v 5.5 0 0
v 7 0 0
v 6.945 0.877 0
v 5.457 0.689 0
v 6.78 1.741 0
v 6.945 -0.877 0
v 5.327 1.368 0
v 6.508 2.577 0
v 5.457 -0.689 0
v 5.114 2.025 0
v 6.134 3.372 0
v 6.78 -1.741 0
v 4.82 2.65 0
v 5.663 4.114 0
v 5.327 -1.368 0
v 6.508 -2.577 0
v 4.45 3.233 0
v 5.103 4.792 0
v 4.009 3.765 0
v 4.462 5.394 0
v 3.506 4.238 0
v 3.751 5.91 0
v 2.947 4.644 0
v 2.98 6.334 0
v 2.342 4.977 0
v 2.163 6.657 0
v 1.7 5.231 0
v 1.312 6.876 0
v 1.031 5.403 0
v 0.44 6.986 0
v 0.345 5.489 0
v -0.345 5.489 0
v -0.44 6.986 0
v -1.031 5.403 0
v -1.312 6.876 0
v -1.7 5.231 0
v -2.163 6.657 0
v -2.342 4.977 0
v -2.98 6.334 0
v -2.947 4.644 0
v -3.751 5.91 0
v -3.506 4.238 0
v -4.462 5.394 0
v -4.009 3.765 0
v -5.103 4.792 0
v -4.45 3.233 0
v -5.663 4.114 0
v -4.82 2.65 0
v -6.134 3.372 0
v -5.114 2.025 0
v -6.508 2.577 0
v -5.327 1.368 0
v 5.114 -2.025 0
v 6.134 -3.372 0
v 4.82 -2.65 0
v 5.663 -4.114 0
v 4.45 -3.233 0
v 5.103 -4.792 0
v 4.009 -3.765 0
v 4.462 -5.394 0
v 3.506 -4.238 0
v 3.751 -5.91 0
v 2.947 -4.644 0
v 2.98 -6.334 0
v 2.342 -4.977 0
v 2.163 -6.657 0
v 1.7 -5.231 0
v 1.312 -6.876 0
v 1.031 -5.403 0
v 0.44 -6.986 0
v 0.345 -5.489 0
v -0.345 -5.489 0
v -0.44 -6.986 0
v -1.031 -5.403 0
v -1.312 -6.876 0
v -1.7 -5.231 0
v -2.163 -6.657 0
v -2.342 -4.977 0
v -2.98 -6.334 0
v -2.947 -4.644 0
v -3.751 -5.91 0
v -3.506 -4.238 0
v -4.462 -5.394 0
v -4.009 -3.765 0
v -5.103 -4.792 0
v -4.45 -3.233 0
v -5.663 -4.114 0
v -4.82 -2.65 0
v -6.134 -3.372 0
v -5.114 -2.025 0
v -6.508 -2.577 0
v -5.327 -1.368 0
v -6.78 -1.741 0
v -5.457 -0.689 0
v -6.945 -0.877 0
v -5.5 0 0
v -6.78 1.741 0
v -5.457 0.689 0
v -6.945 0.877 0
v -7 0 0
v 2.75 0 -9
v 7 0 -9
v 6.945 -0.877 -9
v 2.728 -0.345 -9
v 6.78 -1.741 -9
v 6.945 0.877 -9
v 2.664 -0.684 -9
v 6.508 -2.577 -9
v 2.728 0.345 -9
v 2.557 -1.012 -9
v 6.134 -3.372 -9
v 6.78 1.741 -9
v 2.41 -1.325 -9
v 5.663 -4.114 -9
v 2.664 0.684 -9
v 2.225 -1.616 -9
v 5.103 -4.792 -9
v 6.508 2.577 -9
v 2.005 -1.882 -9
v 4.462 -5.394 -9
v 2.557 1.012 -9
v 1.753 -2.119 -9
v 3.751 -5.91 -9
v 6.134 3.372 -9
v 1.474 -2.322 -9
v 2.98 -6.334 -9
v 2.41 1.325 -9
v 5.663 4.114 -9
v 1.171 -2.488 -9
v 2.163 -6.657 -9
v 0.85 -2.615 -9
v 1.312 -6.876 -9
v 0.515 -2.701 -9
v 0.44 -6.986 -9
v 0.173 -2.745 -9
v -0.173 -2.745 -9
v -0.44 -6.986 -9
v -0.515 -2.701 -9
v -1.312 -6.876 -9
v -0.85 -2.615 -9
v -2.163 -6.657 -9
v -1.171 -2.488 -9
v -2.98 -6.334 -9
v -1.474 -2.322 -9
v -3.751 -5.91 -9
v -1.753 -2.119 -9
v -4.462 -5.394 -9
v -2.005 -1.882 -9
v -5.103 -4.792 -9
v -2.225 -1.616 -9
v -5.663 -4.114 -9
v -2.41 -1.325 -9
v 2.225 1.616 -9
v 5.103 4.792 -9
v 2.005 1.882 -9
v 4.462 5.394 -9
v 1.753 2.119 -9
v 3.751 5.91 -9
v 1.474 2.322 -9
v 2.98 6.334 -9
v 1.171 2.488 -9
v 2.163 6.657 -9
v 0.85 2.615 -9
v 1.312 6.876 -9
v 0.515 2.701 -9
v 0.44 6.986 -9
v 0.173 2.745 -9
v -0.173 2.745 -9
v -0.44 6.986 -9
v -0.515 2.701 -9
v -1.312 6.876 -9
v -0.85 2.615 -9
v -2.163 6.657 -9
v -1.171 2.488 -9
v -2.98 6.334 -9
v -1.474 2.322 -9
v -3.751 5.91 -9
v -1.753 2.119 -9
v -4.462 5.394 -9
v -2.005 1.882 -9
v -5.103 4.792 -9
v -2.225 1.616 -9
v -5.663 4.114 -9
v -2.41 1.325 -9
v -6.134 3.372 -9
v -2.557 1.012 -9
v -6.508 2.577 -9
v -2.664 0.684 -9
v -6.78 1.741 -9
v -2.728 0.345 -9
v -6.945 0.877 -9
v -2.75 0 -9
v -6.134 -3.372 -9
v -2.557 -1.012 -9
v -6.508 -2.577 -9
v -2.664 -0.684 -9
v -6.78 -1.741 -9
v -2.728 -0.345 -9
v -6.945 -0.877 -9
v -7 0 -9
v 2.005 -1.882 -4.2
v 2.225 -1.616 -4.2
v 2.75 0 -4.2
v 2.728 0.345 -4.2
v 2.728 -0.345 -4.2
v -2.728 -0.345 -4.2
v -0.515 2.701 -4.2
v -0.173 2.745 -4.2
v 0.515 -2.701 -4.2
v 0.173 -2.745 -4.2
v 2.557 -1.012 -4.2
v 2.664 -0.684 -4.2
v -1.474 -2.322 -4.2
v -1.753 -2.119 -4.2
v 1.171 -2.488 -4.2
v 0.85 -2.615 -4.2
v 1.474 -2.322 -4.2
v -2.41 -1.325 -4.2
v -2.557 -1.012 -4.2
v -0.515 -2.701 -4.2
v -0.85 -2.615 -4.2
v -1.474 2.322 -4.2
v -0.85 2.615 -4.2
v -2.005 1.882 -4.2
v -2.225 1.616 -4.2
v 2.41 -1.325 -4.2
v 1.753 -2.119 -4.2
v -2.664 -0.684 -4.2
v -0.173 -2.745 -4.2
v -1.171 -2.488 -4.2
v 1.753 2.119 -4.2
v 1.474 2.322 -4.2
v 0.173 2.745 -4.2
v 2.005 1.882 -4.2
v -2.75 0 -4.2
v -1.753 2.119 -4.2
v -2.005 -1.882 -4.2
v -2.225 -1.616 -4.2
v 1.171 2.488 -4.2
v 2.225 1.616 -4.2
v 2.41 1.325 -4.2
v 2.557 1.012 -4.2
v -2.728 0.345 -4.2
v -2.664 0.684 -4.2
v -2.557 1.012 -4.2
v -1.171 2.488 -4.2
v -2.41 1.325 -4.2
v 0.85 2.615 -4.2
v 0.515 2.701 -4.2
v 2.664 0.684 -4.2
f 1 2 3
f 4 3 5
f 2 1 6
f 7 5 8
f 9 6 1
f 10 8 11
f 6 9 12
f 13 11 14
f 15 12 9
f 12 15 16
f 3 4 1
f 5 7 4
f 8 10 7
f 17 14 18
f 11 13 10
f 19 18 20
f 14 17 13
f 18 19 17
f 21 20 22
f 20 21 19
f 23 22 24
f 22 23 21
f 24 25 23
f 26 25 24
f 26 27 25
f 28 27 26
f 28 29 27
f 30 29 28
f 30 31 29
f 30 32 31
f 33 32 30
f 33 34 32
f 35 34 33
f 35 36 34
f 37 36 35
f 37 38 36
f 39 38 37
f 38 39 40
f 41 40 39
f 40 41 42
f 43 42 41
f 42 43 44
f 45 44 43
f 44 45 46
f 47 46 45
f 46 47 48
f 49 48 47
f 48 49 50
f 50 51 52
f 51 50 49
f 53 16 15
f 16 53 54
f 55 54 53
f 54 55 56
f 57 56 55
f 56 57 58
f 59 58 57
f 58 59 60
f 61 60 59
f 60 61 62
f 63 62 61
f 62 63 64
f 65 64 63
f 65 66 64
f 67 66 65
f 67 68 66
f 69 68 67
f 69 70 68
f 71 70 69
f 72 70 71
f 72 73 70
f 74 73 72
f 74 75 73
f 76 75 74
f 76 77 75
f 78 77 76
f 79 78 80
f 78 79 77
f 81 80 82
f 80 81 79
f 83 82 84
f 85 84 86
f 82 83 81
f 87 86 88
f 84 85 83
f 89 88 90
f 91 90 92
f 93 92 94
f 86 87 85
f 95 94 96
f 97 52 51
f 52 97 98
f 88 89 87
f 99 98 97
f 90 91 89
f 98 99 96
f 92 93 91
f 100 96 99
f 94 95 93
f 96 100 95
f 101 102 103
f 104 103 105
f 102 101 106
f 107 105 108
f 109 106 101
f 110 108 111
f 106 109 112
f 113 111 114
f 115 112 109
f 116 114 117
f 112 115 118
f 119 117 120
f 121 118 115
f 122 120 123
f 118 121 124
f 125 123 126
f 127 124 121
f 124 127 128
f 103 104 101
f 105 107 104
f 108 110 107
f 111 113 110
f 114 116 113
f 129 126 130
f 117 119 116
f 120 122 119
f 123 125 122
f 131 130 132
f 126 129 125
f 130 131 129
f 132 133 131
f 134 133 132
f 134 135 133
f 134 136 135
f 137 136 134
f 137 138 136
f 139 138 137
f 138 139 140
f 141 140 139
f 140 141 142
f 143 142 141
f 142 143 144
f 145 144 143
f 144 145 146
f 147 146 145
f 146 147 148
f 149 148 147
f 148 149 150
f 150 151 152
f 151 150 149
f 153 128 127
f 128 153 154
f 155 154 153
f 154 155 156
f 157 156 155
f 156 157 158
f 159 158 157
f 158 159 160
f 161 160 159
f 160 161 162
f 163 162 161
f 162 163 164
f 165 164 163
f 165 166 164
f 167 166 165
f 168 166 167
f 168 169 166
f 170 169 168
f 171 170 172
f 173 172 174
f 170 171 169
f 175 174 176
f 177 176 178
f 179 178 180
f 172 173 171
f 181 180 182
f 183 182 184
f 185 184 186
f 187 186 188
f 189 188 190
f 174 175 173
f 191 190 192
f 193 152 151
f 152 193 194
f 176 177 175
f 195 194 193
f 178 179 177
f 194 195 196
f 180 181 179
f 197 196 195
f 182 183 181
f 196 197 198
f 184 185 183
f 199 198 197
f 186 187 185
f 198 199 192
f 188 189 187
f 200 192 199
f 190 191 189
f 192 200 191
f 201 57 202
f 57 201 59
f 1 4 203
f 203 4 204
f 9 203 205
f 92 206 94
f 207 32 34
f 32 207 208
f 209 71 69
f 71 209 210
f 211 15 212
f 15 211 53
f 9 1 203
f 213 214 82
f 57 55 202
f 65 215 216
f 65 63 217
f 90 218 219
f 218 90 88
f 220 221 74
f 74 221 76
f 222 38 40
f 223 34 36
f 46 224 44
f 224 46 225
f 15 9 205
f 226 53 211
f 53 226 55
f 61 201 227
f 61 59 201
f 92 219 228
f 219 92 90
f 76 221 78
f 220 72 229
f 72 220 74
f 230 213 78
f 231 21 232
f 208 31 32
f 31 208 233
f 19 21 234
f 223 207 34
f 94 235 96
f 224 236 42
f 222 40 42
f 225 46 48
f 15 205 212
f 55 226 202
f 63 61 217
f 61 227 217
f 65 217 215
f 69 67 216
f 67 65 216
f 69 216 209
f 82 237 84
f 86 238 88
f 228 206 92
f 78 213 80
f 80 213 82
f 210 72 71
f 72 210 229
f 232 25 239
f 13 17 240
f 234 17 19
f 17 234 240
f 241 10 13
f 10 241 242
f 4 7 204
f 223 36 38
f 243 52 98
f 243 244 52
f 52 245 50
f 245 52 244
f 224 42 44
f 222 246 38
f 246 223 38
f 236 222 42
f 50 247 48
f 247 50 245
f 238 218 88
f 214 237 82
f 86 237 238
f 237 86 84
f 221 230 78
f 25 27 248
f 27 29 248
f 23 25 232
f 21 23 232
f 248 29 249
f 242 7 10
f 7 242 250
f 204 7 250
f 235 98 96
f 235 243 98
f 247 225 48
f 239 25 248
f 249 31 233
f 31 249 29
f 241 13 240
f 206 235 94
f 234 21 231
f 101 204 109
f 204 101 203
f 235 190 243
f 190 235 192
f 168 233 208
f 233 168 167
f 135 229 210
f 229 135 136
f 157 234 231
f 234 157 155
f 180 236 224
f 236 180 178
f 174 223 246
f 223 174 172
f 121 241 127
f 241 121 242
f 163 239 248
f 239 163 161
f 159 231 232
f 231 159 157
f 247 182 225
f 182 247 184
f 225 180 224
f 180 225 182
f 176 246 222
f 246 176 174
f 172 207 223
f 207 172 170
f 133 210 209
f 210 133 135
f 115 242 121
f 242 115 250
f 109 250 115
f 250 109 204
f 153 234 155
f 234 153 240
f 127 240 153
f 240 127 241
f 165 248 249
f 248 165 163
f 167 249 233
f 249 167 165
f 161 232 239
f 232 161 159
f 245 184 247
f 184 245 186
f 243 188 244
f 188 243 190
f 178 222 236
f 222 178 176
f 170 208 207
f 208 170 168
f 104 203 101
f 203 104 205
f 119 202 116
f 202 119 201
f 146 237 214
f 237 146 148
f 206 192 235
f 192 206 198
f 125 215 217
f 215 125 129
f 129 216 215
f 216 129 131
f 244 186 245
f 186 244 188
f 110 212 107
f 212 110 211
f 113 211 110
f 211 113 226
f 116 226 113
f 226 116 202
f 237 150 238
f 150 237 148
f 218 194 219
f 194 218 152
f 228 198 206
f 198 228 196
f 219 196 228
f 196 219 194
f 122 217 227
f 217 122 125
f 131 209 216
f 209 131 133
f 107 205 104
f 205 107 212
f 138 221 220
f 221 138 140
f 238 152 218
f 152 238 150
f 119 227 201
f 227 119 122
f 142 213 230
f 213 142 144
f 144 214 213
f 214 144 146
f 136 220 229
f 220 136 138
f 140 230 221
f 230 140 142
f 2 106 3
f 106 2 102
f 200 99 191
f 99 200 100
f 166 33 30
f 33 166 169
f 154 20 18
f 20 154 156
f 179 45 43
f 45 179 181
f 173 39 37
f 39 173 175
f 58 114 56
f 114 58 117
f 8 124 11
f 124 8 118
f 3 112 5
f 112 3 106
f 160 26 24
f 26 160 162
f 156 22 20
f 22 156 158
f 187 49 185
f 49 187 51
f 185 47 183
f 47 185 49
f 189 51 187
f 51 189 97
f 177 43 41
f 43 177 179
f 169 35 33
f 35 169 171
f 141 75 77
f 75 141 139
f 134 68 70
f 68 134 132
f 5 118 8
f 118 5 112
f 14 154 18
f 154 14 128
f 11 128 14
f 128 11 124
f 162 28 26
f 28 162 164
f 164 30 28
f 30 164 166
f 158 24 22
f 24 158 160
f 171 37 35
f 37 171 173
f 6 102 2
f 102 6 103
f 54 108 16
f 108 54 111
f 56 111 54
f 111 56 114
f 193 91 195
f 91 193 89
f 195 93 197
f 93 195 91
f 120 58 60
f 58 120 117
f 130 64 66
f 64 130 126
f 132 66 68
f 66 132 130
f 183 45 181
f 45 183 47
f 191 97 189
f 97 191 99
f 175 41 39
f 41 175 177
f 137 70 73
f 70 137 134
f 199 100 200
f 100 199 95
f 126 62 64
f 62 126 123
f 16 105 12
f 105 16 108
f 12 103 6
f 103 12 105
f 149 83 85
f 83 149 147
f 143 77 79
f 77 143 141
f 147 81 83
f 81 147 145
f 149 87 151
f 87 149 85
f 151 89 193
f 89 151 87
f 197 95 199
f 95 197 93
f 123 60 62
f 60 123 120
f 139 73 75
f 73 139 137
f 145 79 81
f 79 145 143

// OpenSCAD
$fn = 50;


difference() {
	union() {
		translate(v = [0, 0, -9.0000000000]) {
			cylinder(h = 9, r = 7.0000000000);
		}
		cylinder(h = 0, r = 16.0000000000);
	}
	union() {
		translate(v = [0, 0, 0]) {
			rotate(a = [0, 0, 0]) {
				difference() {
					union() {
						#translate(v = [0, 0, -9.0000000000]) {
							cylinder(h = 9, r = 2.2500000000);
						}
						#translate(v = [0, 0, -4.2000000000]) {
							cylinder(h = 4.2000000000, r = 7.0000000000, r1 = 2.7500000000, r2 = 5.5000000000);
						}
						#translate(v = [0, 0, -9.0000000000]) {
							cylinder(h = 9, r = 2.7500000000);
						}
						#translate(v = [0, 0, -9.0000000000]) {
							cylinder(h = 9, r = 2.2500000000);
						}
					}
					union();
				}
			}
		}
	}
}
